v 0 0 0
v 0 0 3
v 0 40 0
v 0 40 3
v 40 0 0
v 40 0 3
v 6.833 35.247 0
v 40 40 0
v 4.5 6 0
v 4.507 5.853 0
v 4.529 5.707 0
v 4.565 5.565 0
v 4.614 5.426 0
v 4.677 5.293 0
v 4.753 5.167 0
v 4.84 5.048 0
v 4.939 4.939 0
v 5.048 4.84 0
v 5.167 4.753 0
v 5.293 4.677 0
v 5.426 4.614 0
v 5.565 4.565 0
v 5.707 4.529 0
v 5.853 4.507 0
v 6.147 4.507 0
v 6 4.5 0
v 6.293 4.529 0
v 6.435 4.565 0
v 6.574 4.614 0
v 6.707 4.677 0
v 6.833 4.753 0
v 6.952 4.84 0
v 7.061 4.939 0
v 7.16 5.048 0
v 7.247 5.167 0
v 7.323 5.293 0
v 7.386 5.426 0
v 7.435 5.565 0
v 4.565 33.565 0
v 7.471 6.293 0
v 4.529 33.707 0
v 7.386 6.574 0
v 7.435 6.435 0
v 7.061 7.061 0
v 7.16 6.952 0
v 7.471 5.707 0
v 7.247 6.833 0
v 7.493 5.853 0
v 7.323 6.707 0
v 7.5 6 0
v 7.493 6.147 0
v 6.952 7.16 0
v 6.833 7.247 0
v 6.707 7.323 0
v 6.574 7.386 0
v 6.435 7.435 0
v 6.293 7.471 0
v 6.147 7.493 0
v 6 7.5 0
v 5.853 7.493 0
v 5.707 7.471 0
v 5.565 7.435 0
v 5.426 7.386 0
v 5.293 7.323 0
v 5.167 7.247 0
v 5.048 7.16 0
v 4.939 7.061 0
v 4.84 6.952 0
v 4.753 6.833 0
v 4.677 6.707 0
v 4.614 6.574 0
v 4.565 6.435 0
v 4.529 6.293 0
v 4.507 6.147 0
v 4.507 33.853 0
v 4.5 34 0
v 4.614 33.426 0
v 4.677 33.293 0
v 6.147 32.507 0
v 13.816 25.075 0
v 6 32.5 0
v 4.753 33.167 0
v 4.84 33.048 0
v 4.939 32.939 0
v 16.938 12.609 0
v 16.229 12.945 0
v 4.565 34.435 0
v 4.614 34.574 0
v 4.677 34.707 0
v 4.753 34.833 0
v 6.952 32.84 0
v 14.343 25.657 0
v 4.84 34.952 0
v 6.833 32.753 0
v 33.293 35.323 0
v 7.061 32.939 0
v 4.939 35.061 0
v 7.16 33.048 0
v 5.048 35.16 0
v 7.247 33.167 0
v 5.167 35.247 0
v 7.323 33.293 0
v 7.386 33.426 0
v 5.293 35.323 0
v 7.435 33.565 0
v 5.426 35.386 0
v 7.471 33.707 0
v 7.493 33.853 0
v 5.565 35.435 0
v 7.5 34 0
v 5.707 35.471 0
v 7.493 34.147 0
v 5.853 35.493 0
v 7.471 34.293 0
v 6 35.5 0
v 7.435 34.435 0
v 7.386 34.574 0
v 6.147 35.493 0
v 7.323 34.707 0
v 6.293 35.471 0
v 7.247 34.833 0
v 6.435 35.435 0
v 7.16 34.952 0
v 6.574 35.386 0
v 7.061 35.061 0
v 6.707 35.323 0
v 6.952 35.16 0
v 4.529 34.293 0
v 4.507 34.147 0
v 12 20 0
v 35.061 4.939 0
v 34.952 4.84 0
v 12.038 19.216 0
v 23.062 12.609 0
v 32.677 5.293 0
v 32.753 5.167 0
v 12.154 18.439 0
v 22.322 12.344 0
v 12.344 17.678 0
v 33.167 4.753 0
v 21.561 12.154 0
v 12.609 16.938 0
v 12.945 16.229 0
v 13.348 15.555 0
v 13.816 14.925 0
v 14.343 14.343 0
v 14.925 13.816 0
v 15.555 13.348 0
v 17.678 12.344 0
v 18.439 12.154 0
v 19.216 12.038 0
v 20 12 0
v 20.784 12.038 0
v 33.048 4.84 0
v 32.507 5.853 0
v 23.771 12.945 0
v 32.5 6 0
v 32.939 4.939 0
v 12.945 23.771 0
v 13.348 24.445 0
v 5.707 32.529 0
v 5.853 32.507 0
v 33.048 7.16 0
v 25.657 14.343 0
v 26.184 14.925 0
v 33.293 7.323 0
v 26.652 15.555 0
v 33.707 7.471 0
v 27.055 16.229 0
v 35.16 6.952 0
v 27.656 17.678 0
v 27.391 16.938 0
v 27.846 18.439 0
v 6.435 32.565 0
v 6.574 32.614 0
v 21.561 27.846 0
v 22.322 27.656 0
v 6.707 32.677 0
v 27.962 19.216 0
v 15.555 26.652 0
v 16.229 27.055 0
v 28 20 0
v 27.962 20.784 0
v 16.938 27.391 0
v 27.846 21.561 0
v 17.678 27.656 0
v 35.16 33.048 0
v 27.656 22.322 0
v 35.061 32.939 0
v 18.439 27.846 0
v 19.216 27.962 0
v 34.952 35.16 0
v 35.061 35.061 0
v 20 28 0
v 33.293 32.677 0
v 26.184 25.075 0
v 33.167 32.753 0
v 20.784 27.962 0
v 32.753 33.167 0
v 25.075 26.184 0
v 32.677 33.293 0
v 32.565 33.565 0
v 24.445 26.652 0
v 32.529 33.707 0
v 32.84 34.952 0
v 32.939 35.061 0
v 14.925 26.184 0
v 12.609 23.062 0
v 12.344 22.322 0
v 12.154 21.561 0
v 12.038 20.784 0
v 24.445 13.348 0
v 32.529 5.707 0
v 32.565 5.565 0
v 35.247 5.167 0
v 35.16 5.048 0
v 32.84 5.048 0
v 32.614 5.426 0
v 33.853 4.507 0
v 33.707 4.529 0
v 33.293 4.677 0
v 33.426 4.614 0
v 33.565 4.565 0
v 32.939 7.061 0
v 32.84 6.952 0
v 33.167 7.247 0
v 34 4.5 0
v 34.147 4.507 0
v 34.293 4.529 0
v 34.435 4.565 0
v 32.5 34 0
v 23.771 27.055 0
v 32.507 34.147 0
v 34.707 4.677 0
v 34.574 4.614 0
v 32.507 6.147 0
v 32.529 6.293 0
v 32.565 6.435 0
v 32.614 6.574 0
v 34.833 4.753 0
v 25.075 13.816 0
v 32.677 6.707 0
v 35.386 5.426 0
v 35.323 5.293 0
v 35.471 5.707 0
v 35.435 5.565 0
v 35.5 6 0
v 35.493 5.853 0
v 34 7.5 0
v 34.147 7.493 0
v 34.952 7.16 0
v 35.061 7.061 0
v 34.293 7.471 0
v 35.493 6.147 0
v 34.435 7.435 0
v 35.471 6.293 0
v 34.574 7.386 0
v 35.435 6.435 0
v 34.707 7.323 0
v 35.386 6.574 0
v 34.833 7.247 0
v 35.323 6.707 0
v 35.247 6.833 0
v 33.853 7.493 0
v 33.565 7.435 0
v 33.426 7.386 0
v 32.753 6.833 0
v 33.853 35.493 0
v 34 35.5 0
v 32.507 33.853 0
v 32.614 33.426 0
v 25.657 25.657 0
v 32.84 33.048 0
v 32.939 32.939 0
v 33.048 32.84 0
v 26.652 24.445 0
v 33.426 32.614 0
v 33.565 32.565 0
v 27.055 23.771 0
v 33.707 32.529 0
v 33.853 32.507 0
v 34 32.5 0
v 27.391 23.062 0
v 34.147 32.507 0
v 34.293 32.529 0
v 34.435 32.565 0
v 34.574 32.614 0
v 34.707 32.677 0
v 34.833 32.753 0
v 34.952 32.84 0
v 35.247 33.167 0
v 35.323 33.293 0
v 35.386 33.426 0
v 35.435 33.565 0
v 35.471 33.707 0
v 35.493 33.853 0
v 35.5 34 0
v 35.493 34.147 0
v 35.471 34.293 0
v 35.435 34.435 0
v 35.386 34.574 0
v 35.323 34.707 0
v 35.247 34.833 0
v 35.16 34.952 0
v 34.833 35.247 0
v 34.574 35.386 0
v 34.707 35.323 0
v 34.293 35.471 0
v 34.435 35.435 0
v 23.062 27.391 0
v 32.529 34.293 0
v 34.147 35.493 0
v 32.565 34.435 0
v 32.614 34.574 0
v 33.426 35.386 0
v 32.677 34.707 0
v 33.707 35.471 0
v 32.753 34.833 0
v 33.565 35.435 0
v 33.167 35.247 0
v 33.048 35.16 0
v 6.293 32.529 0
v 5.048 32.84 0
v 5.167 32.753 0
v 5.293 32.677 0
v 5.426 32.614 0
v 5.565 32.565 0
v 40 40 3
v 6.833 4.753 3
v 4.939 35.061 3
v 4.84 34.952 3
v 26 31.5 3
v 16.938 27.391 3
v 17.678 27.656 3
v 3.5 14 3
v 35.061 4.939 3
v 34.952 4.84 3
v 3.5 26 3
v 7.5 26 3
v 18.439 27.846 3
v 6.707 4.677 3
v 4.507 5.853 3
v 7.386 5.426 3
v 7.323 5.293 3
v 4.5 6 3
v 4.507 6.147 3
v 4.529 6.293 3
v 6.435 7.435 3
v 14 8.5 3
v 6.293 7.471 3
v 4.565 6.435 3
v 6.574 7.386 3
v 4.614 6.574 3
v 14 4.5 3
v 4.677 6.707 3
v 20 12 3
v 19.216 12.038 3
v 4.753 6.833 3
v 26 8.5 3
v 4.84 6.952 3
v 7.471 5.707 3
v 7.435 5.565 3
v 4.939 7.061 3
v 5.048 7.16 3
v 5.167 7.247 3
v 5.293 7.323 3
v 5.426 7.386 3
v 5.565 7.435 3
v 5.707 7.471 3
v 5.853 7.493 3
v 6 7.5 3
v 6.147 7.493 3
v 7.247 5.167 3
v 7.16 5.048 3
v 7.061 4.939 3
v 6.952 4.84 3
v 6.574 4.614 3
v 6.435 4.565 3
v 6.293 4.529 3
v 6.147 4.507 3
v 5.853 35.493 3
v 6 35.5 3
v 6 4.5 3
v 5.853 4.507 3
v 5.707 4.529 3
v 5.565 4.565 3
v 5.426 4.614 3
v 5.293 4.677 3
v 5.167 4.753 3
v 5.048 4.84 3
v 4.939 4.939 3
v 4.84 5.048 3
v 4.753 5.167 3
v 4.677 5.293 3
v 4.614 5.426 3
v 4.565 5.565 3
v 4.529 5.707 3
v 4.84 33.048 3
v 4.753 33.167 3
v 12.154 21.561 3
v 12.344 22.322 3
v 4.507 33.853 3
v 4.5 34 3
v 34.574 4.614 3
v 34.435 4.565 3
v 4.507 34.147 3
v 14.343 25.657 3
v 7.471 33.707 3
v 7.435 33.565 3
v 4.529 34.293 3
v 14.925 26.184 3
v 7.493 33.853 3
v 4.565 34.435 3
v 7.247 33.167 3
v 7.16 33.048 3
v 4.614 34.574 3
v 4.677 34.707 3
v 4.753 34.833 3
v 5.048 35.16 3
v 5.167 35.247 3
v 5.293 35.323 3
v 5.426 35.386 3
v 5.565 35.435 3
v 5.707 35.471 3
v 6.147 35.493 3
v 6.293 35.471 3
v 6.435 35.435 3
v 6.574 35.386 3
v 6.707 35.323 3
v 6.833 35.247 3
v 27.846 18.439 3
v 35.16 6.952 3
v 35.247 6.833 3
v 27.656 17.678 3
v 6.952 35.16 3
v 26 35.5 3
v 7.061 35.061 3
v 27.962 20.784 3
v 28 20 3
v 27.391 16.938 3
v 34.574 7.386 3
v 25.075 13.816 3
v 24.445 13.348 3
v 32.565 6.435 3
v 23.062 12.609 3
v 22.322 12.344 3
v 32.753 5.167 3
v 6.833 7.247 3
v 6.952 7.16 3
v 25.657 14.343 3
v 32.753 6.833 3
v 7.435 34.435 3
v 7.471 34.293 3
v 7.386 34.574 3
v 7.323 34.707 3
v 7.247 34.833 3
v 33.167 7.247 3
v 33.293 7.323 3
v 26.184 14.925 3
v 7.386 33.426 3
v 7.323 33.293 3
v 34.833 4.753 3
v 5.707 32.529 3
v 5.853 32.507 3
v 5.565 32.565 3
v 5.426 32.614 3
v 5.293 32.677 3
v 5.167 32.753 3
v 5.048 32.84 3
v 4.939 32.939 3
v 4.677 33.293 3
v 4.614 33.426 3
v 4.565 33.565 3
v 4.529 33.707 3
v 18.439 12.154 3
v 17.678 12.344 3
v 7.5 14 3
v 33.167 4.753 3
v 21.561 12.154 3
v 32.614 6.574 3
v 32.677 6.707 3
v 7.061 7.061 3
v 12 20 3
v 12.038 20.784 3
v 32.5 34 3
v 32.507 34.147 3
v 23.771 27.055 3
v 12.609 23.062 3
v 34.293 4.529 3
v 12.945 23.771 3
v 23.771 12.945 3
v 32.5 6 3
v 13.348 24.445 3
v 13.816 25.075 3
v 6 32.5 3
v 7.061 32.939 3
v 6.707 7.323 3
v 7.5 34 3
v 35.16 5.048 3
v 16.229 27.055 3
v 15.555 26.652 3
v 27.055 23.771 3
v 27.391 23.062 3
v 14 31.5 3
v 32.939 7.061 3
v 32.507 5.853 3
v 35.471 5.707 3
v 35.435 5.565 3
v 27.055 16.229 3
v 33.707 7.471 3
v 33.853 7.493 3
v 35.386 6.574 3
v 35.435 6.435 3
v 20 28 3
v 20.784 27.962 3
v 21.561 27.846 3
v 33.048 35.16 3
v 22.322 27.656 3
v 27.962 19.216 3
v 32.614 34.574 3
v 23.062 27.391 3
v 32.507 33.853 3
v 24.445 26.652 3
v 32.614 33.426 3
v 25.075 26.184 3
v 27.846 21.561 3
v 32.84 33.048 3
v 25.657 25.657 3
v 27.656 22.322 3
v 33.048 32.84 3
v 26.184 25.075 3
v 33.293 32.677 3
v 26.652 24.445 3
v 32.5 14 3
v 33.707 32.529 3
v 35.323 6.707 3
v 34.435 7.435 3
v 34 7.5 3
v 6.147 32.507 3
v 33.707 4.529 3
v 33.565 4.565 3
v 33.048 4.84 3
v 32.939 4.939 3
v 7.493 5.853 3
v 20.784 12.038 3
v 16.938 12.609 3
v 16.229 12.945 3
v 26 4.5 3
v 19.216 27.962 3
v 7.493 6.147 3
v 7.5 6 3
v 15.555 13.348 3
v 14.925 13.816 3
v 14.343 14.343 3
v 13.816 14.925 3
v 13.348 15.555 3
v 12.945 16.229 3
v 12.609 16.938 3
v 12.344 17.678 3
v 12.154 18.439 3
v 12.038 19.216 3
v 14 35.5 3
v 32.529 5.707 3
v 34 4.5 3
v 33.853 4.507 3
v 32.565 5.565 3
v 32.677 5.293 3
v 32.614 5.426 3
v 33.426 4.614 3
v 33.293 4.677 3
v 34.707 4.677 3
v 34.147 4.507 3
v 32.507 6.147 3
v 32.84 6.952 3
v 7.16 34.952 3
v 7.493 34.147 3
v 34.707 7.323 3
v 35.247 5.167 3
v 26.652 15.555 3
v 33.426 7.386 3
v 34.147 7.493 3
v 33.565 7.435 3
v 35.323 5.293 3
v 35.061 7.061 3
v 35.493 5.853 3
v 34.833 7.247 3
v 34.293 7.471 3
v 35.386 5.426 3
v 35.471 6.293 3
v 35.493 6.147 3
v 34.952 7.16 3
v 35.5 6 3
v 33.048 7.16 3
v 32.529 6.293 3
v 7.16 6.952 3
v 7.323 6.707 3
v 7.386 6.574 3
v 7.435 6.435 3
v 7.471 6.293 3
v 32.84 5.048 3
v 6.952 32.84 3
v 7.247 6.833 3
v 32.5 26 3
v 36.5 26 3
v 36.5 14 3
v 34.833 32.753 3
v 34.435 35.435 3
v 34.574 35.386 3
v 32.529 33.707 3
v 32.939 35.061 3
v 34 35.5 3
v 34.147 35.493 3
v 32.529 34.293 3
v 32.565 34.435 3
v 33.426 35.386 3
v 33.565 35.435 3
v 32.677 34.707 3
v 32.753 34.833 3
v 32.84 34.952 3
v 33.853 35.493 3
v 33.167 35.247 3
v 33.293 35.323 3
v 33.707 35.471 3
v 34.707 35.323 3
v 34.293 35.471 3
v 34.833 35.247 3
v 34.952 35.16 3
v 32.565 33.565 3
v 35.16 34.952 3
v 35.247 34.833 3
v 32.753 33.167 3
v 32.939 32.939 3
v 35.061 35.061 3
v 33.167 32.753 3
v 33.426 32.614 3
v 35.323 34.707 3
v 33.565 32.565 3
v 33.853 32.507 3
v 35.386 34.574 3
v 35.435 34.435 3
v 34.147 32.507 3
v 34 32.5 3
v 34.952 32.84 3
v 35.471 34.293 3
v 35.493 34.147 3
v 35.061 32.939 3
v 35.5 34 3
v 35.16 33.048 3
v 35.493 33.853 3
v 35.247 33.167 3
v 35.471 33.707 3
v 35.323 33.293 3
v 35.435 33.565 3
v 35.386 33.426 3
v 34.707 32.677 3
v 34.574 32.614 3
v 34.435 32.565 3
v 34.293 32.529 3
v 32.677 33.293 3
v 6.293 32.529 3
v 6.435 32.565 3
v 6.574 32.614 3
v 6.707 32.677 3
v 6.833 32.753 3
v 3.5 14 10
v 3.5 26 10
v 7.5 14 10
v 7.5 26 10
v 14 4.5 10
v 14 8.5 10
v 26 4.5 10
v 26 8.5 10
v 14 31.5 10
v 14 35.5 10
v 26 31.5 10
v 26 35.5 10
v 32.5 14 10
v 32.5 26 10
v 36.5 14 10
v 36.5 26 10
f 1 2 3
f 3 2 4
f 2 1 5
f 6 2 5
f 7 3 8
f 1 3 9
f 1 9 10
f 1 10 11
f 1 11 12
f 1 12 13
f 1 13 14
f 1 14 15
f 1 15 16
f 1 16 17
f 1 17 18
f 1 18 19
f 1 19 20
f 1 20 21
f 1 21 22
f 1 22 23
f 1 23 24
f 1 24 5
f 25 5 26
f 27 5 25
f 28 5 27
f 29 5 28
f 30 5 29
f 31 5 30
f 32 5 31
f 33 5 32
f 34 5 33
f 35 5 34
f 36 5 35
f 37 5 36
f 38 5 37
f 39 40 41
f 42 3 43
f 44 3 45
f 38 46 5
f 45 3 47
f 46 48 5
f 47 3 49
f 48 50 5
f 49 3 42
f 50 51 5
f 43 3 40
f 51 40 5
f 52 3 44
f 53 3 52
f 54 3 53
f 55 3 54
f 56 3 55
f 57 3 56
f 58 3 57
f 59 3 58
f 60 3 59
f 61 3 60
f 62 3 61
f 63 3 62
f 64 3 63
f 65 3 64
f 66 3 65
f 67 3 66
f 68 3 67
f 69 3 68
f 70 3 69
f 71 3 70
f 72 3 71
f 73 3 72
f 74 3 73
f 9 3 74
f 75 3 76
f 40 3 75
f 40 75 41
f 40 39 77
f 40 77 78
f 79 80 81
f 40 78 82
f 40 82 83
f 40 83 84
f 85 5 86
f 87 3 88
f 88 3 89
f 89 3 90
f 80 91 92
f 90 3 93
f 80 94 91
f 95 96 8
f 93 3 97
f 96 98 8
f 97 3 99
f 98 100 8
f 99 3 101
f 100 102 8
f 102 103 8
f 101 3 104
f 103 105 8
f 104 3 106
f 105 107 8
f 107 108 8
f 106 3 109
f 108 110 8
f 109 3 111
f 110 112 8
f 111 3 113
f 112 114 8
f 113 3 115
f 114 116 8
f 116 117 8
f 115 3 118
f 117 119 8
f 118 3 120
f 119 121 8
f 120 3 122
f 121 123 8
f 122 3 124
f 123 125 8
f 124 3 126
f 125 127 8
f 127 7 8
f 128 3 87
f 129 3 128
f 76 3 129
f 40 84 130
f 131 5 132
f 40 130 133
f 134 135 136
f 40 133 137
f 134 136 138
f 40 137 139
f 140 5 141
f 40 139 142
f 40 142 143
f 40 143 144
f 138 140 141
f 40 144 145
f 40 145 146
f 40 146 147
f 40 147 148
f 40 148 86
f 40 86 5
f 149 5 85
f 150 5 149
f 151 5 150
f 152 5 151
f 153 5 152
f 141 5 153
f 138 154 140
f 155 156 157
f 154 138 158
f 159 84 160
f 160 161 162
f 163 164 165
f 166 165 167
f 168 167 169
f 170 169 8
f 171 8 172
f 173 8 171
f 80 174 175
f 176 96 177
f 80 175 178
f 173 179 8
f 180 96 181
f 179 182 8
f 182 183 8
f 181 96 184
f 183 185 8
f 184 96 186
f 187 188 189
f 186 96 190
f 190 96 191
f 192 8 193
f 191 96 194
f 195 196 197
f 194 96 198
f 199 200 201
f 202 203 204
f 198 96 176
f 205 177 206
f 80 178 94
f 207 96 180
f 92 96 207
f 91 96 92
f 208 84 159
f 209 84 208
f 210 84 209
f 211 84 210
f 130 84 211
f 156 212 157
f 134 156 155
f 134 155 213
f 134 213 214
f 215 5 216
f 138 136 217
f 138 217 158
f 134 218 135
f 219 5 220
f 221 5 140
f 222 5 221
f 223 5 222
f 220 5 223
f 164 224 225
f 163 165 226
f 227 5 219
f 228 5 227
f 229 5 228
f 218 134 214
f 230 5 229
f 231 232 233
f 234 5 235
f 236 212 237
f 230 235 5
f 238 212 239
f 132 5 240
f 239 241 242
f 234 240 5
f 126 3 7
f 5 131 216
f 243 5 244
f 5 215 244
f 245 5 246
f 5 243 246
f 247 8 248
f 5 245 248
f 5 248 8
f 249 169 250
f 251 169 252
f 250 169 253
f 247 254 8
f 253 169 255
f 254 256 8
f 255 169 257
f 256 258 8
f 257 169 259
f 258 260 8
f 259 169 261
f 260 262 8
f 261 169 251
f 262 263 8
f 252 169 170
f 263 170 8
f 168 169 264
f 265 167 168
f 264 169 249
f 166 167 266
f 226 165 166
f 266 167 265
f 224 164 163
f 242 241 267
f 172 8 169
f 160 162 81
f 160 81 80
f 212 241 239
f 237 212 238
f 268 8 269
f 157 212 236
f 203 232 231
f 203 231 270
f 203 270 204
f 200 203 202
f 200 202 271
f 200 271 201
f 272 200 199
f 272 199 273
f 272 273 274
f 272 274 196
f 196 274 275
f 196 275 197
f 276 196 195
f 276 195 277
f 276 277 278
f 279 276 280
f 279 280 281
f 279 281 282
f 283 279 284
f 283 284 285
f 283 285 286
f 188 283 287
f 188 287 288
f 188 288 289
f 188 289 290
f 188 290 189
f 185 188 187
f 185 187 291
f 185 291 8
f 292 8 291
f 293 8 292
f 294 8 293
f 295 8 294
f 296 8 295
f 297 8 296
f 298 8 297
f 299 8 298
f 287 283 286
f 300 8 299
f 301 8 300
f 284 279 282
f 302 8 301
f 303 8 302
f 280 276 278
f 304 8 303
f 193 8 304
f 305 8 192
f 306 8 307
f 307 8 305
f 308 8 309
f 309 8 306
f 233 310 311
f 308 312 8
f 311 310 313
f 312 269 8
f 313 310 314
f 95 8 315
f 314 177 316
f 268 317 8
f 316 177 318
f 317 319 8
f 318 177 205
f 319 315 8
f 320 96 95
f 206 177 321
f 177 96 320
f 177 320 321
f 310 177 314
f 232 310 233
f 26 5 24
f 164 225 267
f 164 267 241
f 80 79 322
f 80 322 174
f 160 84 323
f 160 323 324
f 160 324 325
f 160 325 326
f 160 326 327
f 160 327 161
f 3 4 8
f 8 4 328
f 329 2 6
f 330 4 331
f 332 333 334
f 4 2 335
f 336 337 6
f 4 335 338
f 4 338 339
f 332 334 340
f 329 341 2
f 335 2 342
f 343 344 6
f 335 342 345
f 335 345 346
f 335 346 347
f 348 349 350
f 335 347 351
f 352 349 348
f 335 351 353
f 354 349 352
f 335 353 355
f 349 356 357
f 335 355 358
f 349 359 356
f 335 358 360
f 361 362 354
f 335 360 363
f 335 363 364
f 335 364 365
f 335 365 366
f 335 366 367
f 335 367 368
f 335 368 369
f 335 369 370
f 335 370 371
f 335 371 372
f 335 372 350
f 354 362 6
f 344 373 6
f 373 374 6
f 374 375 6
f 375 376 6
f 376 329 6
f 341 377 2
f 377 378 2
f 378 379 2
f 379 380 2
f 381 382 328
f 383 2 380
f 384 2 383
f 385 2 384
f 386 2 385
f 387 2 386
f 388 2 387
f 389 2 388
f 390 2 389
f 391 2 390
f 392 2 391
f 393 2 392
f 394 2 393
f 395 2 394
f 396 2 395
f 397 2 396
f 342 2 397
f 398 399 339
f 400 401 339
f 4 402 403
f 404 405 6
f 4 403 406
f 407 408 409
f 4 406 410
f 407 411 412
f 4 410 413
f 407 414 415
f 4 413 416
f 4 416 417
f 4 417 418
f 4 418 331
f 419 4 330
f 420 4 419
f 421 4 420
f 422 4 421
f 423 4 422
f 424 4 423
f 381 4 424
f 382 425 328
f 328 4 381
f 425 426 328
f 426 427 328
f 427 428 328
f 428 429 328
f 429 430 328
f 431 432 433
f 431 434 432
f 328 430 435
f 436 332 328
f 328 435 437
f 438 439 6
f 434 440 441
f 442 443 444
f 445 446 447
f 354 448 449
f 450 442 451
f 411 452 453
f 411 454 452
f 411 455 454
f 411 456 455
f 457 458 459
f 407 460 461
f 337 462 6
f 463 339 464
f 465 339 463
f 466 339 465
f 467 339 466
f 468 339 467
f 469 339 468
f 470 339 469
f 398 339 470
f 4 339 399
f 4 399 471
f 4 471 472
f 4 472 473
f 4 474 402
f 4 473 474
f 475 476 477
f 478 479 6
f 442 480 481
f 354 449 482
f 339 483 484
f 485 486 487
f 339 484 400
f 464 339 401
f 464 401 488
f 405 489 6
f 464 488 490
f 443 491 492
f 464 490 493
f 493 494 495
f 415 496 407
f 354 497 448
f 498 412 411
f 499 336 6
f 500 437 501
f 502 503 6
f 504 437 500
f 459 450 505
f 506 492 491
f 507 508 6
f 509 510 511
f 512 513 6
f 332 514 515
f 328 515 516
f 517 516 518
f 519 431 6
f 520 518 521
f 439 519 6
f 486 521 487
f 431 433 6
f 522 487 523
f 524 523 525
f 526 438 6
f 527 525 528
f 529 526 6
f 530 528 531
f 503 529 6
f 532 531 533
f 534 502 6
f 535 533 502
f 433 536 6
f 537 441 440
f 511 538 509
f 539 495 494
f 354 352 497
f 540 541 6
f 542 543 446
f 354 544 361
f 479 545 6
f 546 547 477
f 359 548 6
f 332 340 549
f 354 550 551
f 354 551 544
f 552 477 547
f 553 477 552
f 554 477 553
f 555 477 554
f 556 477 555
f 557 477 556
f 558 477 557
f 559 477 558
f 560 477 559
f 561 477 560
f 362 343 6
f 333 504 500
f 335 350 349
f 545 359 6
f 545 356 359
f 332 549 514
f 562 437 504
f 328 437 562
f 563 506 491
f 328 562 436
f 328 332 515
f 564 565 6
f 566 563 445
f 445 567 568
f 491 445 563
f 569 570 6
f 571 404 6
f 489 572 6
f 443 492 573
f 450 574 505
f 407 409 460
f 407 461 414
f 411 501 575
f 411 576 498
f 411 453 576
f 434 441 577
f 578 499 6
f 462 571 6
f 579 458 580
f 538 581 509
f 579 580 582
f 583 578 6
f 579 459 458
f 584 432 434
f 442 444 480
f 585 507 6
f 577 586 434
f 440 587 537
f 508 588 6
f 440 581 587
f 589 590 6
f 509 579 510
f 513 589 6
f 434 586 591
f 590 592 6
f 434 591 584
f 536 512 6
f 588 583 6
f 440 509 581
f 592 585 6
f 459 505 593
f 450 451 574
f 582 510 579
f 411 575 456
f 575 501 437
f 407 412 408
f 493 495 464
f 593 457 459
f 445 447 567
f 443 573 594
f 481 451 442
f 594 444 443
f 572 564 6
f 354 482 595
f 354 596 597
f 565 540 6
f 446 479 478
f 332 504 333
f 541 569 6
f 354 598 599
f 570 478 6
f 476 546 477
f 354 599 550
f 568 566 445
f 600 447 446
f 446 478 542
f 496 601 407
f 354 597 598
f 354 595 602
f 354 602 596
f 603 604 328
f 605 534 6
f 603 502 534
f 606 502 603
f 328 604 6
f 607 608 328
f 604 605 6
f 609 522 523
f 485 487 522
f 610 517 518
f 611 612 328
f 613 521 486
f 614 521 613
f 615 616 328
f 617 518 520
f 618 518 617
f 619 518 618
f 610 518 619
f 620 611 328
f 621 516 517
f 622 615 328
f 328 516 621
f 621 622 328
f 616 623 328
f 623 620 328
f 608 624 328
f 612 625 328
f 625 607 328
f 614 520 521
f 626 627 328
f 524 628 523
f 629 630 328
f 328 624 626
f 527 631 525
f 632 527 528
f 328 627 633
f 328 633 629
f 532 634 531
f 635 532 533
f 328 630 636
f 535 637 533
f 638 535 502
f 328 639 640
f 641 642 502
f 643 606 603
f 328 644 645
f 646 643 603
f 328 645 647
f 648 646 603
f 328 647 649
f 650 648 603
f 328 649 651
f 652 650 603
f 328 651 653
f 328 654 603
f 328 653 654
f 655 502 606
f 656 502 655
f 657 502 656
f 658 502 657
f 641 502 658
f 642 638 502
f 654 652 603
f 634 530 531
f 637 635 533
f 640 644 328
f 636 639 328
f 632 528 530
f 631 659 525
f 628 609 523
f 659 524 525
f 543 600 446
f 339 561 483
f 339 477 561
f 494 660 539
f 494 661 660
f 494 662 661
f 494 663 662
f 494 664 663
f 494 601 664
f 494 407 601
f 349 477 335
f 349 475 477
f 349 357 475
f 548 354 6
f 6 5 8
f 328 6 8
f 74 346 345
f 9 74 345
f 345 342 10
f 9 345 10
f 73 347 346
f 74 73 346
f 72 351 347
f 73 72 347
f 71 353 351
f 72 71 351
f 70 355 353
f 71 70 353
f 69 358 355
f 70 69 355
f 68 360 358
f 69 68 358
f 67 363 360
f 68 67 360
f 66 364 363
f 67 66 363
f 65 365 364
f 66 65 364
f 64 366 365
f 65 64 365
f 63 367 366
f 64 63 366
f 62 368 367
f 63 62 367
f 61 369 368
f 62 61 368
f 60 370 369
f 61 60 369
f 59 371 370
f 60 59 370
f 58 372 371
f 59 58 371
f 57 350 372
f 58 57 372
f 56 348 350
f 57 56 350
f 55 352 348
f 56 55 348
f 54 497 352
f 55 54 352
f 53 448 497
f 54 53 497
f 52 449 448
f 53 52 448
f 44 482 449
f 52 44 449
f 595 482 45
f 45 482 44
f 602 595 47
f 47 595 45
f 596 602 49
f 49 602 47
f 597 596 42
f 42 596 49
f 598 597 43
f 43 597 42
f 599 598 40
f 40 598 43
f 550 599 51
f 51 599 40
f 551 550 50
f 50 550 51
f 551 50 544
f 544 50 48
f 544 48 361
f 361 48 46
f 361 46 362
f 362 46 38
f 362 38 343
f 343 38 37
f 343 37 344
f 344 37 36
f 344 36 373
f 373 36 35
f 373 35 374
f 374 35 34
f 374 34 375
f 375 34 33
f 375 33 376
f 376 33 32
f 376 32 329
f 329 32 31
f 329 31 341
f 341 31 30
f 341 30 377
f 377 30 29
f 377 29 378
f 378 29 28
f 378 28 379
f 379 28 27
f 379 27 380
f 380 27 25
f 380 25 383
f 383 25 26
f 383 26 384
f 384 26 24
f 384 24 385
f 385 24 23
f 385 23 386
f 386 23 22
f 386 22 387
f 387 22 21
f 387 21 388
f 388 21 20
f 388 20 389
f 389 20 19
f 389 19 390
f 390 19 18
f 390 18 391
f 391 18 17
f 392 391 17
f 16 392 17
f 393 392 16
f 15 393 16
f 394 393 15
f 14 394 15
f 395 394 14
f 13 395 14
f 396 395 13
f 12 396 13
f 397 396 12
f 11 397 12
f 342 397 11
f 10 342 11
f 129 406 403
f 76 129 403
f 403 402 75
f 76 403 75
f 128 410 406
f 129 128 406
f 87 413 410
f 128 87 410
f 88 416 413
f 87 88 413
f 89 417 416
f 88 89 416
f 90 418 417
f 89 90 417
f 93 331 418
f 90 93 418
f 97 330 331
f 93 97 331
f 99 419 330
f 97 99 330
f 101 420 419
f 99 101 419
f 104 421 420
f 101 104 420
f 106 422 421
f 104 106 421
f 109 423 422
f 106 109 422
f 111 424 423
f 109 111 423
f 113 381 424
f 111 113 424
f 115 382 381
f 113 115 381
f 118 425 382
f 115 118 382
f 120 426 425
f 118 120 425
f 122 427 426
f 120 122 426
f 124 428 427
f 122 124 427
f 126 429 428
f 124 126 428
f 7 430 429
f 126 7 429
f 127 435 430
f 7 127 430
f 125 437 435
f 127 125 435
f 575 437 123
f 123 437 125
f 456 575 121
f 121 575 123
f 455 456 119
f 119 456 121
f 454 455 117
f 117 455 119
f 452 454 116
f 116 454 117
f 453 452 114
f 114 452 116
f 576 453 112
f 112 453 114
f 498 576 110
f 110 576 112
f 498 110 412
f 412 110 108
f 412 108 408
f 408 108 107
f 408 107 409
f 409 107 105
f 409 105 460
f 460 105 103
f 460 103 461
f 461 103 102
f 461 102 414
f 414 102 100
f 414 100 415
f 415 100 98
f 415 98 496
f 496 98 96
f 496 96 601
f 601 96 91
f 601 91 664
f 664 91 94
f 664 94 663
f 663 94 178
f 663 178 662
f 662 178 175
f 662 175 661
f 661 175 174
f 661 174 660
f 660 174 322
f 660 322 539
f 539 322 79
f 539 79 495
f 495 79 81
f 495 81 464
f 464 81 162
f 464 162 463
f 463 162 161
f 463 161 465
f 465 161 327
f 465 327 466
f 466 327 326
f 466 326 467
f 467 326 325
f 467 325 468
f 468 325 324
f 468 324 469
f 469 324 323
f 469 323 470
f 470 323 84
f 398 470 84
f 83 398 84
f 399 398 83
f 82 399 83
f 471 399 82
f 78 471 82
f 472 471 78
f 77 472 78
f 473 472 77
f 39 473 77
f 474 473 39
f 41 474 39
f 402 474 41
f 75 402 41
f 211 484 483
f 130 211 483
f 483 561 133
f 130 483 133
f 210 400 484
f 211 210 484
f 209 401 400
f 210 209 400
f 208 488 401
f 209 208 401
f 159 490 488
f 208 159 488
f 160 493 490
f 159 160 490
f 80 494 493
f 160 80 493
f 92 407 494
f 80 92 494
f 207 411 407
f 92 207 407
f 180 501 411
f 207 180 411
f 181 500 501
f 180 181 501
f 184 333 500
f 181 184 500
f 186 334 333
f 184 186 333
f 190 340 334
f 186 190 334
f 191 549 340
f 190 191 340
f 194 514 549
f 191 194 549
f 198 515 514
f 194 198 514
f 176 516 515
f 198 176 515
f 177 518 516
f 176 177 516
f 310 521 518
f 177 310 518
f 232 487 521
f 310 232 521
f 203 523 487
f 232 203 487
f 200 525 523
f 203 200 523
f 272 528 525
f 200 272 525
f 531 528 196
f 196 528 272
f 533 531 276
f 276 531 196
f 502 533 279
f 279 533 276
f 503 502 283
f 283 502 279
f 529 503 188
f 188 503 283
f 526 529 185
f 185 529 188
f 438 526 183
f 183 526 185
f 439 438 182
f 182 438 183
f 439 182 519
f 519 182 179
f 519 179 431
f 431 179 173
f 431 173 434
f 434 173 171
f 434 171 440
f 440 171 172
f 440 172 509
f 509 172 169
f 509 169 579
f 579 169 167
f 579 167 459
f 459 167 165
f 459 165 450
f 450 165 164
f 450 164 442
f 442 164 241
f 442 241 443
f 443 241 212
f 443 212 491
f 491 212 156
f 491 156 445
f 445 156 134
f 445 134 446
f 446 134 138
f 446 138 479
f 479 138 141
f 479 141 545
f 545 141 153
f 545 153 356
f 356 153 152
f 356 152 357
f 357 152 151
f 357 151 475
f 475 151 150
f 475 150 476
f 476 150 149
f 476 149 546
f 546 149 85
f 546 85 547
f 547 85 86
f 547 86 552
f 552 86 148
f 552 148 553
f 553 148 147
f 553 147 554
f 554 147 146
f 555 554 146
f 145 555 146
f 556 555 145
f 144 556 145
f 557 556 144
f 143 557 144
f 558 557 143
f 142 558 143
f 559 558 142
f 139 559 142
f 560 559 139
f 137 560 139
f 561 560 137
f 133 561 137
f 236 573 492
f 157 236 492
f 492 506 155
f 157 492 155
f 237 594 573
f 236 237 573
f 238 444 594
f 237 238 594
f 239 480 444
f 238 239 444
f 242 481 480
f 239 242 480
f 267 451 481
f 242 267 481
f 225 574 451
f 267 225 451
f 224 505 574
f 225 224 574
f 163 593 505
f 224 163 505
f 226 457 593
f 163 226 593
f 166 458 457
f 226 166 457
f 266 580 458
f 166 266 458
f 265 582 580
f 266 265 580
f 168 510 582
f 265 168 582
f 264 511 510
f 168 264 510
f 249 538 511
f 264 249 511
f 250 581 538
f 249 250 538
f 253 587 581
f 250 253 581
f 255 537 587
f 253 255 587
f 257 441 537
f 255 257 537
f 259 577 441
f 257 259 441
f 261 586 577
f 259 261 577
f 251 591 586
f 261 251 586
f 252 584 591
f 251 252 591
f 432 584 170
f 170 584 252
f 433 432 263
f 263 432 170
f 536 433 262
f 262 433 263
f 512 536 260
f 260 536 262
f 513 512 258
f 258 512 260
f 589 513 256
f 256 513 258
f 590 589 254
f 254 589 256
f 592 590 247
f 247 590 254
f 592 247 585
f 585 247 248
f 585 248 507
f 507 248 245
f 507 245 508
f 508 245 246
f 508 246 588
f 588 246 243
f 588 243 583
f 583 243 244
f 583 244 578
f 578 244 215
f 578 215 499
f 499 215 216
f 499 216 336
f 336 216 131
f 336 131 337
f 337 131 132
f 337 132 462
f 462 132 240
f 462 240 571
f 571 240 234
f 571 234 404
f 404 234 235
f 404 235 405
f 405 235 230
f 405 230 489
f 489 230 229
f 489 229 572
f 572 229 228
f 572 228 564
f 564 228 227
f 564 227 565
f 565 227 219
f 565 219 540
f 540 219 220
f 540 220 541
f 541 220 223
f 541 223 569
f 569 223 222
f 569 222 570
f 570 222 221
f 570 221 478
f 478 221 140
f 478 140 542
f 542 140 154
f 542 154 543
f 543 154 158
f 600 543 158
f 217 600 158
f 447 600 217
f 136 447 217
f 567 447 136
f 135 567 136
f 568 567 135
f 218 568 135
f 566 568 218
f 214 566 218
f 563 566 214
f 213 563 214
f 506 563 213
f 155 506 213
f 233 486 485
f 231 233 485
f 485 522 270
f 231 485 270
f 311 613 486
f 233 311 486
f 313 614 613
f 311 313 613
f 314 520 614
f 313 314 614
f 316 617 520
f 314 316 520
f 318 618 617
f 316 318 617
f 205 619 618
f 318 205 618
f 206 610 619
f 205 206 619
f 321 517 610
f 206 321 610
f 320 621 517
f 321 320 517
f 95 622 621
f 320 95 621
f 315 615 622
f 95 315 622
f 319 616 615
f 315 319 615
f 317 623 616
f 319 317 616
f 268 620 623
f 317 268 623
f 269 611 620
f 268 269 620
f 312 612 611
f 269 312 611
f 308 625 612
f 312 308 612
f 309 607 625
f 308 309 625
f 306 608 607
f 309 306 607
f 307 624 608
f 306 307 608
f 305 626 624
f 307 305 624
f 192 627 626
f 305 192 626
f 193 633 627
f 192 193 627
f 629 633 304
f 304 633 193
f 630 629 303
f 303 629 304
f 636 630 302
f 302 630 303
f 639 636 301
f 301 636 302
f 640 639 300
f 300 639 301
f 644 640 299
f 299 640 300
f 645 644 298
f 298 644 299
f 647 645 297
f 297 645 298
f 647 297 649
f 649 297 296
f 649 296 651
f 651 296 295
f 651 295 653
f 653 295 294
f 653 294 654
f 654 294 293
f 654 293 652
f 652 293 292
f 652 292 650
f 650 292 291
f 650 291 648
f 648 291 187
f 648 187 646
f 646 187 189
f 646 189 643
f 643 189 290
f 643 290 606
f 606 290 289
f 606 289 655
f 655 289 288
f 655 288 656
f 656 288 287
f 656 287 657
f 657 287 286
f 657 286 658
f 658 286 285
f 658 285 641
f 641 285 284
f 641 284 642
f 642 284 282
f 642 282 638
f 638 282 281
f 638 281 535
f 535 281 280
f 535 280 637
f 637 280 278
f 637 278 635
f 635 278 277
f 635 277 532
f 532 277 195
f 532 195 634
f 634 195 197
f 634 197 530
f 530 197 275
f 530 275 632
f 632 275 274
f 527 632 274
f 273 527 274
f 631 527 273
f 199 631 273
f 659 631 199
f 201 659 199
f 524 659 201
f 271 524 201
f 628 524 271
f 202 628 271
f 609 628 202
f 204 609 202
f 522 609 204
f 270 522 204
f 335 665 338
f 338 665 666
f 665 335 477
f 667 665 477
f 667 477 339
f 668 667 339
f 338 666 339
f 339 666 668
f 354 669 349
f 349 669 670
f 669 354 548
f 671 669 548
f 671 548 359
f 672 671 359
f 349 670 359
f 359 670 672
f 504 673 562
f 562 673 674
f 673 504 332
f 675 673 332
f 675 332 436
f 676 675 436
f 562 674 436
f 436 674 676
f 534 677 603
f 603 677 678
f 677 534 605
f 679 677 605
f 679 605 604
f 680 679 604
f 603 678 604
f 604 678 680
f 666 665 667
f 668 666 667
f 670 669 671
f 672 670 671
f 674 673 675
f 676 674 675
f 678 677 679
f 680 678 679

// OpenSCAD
$fn=64;
difference(){
	cube([40,40,3]);
	translate([6,6,-2]) cylinder(h=8,r=1.5);
	translate([34,6,-2]) cylinder(h=8,r=1.5);
	translate([6,34,-2]) cylinder(h=8,r=1.5);
	translate([34,34,-2]) cylinder(h=8,r=1.5);

	translate([20,20,-2]) cylinder(h=8,r=8);
}

color("red", 1.0 ){
		%translate([7.5,8.5,0]) cube([25,23,12]);
}	
translate([14,4.5,2]) cube([12,4,8]);
translate([14,31.5,2]) cube([12,4,8]);
translate([3.5,14,2]) cube([4,12,8]);
translate([32.5,14,2]) cube([4,12,8]);
